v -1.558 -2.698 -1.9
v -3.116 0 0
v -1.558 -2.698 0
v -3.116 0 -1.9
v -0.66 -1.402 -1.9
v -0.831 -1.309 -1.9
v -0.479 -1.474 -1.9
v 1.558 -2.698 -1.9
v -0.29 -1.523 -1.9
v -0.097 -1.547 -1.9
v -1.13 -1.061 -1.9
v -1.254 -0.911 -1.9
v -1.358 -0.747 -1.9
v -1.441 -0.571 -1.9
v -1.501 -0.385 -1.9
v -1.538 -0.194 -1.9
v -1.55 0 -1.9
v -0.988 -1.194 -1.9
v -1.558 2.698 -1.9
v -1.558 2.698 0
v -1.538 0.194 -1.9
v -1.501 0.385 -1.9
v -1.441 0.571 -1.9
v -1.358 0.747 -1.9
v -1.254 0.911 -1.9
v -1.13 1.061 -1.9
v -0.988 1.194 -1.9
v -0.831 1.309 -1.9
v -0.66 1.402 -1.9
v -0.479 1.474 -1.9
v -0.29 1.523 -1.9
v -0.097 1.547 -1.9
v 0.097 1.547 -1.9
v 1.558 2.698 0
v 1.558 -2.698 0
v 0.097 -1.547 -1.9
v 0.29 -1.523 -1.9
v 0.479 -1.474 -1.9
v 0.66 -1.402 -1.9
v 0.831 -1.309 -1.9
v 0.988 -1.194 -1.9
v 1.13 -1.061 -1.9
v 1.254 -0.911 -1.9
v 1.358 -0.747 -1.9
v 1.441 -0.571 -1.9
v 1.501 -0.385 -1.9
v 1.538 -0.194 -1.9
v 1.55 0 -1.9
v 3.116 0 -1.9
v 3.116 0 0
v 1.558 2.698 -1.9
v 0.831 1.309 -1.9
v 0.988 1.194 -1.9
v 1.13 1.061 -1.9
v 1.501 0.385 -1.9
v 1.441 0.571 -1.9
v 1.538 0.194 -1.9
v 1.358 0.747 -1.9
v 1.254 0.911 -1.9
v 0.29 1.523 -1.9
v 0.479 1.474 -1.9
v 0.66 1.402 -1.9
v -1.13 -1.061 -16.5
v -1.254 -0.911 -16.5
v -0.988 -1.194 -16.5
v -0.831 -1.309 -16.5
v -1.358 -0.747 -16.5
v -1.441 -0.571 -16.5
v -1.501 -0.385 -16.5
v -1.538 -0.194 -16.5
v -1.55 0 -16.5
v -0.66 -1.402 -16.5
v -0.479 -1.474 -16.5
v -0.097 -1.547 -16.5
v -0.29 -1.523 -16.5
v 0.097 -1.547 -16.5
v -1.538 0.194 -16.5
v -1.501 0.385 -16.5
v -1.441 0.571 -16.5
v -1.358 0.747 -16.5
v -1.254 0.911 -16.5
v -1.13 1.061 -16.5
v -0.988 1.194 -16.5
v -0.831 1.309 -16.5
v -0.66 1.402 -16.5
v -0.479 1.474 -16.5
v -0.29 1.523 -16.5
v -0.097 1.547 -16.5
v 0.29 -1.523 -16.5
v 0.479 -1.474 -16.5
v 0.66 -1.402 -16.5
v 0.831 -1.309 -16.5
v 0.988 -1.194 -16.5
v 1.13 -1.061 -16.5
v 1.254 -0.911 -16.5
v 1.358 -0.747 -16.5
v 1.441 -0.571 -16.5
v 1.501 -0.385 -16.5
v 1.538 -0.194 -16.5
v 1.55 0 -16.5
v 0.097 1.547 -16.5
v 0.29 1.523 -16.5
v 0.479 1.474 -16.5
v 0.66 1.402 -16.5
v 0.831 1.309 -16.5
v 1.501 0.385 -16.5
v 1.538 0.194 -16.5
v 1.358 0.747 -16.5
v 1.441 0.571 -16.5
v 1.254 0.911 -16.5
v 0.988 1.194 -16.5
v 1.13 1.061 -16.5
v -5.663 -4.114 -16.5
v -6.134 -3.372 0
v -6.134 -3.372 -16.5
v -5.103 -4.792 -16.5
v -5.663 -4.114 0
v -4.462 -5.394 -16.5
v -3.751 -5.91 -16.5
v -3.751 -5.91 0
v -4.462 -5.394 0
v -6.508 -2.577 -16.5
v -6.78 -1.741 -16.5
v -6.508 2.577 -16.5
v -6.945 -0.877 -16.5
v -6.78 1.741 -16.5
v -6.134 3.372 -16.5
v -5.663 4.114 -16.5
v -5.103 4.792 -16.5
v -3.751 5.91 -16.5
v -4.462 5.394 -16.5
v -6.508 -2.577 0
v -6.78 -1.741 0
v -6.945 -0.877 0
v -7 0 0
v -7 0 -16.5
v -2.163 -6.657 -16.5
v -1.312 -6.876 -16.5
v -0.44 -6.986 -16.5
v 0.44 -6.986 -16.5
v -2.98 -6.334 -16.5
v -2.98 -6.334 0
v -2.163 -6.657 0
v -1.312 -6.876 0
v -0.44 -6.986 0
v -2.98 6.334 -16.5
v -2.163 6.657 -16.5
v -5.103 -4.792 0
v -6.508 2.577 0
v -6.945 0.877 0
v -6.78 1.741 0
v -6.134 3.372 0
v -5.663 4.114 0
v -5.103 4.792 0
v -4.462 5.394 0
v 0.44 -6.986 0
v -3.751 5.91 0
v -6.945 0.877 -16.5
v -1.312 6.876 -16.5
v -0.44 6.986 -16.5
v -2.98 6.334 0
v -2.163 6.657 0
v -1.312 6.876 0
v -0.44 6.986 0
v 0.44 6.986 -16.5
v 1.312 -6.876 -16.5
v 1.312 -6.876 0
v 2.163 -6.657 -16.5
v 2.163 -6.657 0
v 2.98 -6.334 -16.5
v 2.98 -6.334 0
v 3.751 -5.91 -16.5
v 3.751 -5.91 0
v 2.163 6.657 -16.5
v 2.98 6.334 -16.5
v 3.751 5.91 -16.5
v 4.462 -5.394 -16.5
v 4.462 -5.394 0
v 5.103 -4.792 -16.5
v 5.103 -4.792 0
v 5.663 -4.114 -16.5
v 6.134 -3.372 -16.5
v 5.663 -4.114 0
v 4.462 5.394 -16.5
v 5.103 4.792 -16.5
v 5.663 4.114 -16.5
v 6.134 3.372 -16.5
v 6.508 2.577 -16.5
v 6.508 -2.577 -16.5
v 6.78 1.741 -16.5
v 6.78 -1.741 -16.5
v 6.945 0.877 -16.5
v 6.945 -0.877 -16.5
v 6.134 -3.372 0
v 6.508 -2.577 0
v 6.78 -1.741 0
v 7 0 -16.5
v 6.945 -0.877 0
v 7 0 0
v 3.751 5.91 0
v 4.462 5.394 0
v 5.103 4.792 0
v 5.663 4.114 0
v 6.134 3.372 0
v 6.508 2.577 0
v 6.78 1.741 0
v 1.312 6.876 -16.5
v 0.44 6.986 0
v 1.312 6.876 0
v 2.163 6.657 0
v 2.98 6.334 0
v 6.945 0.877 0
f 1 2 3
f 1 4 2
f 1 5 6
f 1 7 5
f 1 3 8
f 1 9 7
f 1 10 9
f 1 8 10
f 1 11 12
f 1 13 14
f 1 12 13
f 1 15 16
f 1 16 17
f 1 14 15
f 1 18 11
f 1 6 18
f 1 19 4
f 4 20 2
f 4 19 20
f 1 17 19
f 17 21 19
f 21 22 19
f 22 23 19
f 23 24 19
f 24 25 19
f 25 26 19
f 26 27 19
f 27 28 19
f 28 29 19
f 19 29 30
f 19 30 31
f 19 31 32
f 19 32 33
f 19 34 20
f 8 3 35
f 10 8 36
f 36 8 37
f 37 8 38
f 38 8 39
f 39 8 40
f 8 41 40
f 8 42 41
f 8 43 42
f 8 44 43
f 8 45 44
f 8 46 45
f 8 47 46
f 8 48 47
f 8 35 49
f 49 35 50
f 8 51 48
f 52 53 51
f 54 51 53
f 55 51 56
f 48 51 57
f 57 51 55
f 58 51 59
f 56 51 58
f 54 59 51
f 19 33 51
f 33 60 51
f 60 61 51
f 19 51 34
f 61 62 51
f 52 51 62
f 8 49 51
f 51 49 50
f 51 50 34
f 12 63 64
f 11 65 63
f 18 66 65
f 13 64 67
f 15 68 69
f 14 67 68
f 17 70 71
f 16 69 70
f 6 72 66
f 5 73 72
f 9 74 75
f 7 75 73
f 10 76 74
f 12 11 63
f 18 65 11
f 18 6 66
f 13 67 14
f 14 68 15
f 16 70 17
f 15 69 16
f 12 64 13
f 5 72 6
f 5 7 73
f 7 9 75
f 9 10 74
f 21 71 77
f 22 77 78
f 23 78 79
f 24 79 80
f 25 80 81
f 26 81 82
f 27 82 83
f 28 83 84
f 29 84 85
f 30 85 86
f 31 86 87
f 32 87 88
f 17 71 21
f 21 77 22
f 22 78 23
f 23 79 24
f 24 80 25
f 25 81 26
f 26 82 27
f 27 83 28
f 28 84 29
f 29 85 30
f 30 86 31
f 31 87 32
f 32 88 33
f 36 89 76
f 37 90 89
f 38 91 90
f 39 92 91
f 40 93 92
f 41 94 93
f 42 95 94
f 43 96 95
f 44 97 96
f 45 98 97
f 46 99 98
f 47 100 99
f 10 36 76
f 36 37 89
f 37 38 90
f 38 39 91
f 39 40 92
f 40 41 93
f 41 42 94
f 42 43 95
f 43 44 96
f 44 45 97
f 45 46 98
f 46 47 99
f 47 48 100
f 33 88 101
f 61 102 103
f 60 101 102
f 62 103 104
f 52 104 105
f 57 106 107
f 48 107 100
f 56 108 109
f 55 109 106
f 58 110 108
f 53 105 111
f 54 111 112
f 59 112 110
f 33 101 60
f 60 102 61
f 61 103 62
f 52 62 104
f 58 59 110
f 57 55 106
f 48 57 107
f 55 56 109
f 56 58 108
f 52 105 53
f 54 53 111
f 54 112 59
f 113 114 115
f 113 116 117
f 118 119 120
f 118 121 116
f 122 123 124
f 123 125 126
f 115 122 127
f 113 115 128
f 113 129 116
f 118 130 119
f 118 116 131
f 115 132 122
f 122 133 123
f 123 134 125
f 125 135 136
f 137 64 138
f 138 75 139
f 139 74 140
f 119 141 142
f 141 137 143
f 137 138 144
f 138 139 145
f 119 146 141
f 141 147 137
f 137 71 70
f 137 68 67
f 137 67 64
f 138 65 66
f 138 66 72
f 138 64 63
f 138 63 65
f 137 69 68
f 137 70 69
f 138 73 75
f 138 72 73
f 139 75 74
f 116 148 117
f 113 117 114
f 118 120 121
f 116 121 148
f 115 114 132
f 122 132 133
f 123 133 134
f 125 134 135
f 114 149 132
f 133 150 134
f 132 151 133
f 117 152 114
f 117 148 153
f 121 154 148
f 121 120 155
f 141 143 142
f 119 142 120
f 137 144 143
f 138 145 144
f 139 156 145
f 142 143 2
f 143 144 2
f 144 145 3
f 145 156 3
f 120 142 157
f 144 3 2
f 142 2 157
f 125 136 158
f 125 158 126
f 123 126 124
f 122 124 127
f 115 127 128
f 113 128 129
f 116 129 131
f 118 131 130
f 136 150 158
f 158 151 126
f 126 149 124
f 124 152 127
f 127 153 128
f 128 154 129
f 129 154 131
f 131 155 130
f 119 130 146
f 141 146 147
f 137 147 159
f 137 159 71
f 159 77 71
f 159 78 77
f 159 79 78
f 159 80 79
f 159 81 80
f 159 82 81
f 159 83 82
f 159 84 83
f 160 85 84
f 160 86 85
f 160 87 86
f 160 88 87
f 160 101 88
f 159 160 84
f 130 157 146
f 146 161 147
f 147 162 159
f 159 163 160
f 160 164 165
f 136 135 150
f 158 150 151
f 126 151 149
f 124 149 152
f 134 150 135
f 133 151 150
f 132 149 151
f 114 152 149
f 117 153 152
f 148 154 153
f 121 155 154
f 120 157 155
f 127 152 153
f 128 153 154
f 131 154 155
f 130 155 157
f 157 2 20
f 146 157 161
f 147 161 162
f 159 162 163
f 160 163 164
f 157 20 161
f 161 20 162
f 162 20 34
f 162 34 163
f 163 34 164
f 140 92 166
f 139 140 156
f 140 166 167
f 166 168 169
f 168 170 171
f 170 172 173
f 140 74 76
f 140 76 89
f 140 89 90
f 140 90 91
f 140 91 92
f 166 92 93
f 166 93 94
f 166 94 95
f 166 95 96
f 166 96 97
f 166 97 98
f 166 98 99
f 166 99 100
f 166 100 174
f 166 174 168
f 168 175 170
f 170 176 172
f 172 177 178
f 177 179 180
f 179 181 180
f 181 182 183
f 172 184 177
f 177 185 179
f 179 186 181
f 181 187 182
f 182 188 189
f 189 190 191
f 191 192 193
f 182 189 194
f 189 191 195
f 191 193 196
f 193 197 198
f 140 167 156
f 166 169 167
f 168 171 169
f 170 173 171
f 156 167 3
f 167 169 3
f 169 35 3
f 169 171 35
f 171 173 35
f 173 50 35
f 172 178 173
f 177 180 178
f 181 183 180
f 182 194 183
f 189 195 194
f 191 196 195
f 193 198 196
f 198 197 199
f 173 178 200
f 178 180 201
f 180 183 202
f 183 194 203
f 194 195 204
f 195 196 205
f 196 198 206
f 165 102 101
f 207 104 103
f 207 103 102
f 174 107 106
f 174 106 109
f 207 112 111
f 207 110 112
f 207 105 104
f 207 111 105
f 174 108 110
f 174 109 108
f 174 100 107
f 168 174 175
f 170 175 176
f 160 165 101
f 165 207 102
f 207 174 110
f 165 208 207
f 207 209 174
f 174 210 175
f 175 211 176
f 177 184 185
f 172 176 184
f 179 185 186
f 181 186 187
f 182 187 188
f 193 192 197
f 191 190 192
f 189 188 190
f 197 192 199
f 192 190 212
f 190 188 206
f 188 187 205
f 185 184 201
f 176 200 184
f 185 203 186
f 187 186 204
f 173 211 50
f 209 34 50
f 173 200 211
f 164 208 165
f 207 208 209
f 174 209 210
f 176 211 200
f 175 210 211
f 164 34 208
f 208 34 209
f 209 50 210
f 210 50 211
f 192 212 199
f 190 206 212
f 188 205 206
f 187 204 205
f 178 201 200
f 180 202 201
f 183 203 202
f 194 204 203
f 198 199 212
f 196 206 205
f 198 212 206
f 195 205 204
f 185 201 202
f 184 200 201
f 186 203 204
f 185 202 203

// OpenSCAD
$fn = 50;


difference() {
	union() {
		translate(v = [0, 0, -16.5000000000]) {
			cylinder(h = 16.5000000000, r = 7.0000000000);
		}
	}
	union() {
		translate(v = [0, 0, 0]) {
			rotate(a = [0, 0, 0]) {
				difference() {
					union() {
						translate(v = [0, 0, -1.9000000000]) {
							linear_extrude(height = 1.9000000000) {
								polygon(points = [[3.1158000000, 0.0000000000], [1.5579000000, 2.6983619531], [-1.5579000000, 2.6983619531], [-3.1158000000, 0.0000000000], [-1.5579000000, -2.6983619531], [1.5579000000, -2.6983619531]]);
							}
						}
					}
					union();
				}
			}
		}
		#translate(v = [0, 0, -100.0000000000]) {
			cylinder(h = 200, r = 1.5500000000);
		}
	}
}
